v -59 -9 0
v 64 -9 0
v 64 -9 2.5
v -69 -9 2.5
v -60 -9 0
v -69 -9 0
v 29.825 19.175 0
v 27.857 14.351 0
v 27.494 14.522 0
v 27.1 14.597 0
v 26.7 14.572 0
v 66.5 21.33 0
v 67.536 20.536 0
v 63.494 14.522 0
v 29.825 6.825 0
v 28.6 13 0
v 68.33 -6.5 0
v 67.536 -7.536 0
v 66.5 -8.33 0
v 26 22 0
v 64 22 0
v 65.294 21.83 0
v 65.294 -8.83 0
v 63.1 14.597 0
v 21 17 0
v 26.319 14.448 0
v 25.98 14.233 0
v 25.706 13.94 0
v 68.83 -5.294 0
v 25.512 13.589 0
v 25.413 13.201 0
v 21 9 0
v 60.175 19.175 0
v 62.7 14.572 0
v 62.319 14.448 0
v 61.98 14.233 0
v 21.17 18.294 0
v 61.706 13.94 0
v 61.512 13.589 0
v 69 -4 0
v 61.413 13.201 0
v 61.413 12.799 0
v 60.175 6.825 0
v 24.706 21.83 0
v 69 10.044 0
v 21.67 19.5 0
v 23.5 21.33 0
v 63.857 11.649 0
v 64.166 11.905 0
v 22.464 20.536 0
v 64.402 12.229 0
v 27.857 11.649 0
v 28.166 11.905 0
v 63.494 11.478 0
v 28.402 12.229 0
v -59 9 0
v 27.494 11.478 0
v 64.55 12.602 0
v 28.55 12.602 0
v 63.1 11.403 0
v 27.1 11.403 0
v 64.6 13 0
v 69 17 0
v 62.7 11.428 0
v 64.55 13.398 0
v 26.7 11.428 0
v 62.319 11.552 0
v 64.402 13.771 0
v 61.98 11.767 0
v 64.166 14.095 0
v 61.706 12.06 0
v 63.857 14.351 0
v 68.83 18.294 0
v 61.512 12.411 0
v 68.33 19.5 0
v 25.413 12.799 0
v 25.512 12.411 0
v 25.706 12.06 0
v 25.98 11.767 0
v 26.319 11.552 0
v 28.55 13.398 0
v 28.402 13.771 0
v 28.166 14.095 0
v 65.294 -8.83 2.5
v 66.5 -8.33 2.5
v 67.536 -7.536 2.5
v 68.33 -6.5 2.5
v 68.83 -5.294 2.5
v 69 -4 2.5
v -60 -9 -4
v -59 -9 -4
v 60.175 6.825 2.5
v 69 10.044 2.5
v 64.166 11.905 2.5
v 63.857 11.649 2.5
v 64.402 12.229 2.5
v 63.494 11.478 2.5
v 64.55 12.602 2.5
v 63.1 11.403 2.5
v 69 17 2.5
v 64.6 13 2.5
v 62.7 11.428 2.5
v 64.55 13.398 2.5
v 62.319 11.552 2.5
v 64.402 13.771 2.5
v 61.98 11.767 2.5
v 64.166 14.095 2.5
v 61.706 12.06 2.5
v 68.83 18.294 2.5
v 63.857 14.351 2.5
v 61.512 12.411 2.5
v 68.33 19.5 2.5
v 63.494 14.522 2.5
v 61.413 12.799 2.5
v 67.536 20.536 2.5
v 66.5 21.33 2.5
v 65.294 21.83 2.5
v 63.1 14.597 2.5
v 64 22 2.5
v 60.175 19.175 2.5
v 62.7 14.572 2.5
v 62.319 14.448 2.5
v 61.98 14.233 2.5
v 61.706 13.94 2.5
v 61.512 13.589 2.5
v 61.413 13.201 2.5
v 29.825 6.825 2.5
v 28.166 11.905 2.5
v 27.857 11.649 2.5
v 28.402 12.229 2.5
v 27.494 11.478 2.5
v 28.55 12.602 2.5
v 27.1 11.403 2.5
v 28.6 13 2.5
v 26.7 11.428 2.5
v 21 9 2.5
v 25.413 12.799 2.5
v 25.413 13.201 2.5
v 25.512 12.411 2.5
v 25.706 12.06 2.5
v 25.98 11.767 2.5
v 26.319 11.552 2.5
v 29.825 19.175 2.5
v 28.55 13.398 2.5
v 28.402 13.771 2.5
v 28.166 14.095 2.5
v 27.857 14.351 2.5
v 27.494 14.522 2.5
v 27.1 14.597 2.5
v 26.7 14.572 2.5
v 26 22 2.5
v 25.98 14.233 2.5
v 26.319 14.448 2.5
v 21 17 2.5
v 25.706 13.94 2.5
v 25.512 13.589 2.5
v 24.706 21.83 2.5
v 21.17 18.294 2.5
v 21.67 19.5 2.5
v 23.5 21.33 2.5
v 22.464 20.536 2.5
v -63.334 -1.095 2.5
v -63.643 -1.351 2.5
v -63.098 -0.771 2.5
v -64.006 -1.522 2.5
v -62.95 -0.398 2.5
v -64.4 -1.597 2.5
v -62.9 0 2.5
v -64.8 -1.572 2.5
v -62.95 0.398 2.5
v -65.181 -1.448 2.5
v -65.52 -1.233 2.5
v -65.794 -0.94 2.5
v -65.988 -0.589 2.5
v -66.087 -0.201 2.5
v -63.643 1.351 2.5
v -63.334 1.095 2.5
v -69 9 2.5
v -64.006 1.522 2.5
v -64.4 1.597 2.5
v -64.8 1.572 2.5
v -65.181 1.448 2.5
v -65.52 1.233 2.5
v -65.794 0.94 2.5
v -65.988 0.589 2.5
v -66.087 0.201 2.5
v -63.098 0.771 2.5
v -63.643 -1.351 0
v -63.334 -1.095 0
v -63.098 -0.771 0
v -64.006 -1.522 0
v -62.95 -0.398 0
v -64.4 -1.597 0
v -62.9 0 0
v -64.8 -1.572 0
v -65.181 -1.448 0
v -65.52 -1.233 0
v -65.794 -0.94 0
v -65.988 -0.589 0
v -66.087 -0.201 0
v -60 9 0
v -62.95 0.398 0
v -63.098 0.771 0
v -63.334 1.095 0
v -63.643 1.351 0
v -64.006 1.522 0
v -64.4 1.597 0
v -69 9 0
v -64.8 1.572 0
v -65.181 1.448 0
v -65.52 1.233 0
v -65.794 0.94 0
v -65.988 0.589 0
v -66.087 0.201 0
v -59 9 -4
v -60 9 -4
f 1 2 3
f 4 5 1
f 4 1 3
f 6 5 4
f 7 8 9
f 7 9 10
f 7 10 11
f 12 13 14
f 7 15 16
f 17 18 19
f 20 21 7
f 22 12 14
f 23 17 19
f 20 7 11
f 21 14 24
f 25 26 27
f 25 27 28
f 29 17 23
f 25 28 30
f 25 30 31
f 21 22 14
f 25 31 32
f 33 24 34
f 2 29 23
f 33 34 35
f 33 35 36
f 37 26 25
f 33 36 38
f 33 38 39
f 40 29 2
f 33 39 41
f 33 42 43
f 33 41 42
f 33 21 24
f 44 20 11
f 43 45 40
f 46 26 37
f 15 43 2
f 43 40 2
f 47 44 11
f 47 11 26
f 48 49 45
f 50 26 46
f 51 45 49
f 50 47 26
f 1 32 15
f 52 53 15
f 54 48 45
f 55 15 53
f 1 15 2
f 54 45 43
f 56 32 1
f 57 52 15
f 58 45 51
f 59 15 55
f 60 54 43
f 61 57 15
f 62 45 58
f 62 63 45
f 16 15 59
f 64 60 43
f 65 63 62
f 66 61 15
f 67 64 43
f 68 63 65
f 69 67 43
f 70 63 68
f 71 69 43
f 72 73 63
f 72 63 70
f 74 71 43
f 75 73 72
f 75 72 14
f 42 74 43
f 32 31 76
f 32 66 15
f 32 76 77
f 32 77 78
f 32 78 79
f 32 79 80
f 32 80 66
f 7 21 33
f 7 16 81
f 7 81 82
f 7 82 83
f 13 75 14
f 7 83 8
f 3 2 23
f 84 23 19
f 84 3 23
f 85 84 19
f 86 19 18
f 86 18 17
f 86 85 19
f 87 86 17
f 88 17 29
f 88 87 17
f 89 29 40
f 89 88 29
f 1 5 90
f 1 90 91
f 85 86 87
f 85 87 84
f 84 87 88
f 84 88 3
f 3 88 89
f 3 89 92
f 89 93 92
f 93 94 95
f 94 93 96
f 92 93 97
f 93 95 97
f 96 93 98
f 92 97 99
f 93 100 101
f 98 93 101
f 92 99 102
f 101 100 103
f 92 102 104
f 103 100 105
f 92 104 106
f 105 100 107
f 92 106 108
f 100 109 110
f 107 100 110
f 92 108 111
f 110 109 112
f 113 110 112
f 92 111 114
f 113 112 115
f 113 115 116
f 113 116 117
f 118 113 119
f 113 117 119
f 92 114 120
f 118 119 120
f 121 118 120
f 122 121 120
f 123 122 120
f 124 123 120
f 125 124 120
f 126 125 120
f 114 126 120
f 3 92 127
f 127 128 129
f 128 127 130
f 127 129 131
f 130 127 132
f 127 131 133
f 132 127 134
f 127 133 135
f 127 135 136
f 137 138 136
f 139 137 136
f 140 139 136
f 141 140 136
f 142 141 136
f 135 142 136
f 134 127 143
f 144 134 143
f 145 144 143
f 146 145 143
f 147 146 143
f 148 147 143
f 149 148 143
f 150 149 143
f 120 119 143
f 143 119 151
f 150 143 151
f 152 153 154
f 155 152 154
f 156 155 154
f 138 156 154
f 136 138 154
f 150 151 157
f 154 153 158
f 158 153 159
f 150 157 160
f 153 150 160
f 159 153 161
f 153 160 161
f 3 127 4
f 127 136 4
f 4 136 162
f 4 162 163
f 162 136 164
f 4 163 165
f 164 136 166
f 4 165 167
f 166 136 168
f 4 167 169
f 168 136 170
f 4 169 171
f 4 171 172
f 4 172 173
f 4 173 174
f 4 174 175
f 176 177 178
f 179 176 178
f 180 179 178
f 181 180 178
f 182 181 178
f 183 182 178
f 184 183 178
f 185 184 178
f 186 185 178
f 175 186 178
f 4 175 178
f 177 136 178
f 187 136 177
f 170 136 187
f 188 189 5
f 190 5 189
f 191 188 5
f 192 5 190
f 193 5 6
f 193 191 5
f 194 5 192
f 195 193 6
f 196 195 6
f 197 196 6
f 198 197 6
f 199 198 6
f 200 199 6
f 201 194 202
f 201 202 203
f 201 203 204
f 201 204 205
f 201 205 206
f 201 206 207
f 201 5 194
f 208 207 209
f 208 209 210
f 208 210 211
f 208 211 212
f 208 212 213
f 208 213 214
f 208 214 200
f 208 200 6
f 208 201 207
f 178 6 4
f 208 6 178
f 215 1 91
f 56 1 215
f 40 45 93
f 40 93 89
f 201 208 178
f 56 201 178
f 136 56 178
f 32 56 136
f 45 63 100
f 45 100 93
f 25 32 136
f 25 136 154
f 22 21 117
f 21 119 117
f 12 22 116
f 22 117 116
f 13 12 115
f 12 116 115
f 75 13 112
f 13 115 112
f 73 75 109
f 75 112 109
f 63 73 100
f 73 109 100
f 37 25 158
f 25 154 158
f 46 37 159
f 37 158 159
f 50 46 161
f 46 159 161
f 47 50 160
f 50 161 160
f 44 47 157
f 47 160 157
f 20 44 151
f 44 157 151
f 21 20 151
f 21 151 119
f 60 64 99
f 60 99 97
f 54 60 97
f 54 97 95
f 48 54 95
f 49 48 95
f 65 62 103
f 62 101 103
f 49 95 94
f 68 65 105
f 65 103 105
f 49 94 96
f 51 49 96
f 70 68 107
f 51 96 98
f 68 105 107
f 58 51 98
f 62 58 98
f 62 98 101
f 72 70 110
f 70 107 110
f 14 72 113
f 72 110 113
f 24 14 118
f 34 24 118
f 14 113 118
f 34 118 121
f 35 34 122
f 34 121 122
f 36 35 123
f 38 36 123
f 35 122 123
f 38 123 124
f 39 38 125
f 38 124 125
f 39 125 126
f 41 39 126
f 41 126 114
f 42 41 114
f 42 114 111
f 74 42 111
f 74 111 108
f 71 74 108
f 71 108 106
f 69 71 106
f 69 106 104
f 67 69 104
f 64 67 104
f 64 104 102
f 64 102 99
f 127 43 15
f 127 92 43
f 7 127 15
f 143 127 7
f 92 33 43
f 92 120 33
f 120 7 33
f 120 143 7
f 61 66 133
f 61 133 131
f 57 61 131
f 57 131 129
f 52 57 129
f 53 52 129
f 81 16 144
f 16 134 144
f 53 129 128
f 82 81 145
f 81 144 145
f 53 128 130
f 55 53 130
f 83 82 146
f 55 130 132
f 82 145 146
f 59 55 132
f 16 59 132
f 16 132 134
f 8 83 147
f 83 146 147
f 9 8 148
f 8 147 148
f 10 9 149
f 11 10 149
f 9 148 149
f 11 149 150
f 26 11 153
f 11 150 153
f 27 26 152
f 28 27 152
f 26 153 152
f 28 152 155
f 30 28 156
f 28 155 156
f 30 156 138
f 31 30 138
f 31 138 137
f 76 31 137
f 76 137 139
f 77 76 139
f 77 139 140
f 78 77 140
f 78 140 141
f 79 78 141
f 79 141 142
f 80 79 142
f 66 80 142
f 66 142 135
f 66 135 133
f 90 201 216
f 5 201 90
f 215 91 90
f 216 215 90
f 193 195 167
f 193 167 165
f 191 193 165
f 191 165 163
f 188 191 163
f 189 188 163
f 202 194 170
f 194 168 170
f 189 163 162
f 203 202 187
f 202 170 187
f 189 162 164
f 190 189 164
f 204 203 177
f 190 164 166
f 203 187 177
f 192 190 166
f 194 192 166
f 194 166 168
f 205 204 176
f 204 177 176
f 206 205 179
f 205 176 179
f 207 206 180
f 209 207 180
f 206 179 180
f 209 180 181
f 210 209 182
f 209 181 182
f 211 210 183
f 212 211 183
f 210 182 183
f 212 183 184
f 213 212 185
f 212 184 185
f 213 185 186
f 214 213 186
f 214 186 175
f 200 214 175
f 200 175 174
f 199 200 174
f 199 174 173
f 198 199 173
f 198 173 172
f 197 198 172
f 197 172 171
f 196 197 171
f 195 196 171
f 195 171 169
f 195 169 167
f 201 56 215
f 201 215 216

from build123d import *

# Parameters (mm, degrees)
PAD_DEPTH    = 2.5
SKETCH001_R  = 1.6
SKETCH001_W  = 30.35
SKETCH001_H  = 12.35
POCKET_DEPTH = 5
SKETCH002_W  = 1
SKETCH002_H  = 18
PAD001_DEPTH = 4
FILLET_R     = 5


with BuildPart() as part:
    # Sketch → Pad (new body)
    with BuildSketch(Plane.XY):
        Polygon((-69, 9), (21, 9), (21, 22), (69, 22), (69, 10.0438), (69, -9), (-69, -9), align=None)
    extrude(amount=PAD_DEPTH)

    # Sketch001 → Pocket (cut)
    with BuildSketch(Plane.XY.offset(2.5)):
        with Locations((-64.5, 0)):
            Circle(SKETCH001_R)
        with Locations((27, 13)):
            Circle(SKETCH001_R)
        with Locations((63, 13)):
            Circle(SKETCH001_R)
        with Locations((45, 13)):
            Rectangle(SKETCH001_W, SKETCH001_H)
    extrude(amount=-POCKET_DEPTH, mode=Mode.SUBTRACT)

    # Sketch002 → Pad001 (new body)
    with BuildSketch(Plane(origin=(0, 0, 0), x_dir=(1, 0, 0), z_dir=(0, 0, -1))):
        with Locations((-59.5, 0)):
            Rectangle(SKETCH002_W, SKETCH002_H)
    extrude(amount=PAD001_DEPTH)

    # Fillet
    fillet_edges = [part.edges().sort_by_distance(p)[0] for p in [
        (69, 22, 1.25),
        (21, 22, 1.25),
        (69, -9, 1.25),
    ]]
    fillet(fillet_edges, radius=FILLET_R)


solid = part.part
